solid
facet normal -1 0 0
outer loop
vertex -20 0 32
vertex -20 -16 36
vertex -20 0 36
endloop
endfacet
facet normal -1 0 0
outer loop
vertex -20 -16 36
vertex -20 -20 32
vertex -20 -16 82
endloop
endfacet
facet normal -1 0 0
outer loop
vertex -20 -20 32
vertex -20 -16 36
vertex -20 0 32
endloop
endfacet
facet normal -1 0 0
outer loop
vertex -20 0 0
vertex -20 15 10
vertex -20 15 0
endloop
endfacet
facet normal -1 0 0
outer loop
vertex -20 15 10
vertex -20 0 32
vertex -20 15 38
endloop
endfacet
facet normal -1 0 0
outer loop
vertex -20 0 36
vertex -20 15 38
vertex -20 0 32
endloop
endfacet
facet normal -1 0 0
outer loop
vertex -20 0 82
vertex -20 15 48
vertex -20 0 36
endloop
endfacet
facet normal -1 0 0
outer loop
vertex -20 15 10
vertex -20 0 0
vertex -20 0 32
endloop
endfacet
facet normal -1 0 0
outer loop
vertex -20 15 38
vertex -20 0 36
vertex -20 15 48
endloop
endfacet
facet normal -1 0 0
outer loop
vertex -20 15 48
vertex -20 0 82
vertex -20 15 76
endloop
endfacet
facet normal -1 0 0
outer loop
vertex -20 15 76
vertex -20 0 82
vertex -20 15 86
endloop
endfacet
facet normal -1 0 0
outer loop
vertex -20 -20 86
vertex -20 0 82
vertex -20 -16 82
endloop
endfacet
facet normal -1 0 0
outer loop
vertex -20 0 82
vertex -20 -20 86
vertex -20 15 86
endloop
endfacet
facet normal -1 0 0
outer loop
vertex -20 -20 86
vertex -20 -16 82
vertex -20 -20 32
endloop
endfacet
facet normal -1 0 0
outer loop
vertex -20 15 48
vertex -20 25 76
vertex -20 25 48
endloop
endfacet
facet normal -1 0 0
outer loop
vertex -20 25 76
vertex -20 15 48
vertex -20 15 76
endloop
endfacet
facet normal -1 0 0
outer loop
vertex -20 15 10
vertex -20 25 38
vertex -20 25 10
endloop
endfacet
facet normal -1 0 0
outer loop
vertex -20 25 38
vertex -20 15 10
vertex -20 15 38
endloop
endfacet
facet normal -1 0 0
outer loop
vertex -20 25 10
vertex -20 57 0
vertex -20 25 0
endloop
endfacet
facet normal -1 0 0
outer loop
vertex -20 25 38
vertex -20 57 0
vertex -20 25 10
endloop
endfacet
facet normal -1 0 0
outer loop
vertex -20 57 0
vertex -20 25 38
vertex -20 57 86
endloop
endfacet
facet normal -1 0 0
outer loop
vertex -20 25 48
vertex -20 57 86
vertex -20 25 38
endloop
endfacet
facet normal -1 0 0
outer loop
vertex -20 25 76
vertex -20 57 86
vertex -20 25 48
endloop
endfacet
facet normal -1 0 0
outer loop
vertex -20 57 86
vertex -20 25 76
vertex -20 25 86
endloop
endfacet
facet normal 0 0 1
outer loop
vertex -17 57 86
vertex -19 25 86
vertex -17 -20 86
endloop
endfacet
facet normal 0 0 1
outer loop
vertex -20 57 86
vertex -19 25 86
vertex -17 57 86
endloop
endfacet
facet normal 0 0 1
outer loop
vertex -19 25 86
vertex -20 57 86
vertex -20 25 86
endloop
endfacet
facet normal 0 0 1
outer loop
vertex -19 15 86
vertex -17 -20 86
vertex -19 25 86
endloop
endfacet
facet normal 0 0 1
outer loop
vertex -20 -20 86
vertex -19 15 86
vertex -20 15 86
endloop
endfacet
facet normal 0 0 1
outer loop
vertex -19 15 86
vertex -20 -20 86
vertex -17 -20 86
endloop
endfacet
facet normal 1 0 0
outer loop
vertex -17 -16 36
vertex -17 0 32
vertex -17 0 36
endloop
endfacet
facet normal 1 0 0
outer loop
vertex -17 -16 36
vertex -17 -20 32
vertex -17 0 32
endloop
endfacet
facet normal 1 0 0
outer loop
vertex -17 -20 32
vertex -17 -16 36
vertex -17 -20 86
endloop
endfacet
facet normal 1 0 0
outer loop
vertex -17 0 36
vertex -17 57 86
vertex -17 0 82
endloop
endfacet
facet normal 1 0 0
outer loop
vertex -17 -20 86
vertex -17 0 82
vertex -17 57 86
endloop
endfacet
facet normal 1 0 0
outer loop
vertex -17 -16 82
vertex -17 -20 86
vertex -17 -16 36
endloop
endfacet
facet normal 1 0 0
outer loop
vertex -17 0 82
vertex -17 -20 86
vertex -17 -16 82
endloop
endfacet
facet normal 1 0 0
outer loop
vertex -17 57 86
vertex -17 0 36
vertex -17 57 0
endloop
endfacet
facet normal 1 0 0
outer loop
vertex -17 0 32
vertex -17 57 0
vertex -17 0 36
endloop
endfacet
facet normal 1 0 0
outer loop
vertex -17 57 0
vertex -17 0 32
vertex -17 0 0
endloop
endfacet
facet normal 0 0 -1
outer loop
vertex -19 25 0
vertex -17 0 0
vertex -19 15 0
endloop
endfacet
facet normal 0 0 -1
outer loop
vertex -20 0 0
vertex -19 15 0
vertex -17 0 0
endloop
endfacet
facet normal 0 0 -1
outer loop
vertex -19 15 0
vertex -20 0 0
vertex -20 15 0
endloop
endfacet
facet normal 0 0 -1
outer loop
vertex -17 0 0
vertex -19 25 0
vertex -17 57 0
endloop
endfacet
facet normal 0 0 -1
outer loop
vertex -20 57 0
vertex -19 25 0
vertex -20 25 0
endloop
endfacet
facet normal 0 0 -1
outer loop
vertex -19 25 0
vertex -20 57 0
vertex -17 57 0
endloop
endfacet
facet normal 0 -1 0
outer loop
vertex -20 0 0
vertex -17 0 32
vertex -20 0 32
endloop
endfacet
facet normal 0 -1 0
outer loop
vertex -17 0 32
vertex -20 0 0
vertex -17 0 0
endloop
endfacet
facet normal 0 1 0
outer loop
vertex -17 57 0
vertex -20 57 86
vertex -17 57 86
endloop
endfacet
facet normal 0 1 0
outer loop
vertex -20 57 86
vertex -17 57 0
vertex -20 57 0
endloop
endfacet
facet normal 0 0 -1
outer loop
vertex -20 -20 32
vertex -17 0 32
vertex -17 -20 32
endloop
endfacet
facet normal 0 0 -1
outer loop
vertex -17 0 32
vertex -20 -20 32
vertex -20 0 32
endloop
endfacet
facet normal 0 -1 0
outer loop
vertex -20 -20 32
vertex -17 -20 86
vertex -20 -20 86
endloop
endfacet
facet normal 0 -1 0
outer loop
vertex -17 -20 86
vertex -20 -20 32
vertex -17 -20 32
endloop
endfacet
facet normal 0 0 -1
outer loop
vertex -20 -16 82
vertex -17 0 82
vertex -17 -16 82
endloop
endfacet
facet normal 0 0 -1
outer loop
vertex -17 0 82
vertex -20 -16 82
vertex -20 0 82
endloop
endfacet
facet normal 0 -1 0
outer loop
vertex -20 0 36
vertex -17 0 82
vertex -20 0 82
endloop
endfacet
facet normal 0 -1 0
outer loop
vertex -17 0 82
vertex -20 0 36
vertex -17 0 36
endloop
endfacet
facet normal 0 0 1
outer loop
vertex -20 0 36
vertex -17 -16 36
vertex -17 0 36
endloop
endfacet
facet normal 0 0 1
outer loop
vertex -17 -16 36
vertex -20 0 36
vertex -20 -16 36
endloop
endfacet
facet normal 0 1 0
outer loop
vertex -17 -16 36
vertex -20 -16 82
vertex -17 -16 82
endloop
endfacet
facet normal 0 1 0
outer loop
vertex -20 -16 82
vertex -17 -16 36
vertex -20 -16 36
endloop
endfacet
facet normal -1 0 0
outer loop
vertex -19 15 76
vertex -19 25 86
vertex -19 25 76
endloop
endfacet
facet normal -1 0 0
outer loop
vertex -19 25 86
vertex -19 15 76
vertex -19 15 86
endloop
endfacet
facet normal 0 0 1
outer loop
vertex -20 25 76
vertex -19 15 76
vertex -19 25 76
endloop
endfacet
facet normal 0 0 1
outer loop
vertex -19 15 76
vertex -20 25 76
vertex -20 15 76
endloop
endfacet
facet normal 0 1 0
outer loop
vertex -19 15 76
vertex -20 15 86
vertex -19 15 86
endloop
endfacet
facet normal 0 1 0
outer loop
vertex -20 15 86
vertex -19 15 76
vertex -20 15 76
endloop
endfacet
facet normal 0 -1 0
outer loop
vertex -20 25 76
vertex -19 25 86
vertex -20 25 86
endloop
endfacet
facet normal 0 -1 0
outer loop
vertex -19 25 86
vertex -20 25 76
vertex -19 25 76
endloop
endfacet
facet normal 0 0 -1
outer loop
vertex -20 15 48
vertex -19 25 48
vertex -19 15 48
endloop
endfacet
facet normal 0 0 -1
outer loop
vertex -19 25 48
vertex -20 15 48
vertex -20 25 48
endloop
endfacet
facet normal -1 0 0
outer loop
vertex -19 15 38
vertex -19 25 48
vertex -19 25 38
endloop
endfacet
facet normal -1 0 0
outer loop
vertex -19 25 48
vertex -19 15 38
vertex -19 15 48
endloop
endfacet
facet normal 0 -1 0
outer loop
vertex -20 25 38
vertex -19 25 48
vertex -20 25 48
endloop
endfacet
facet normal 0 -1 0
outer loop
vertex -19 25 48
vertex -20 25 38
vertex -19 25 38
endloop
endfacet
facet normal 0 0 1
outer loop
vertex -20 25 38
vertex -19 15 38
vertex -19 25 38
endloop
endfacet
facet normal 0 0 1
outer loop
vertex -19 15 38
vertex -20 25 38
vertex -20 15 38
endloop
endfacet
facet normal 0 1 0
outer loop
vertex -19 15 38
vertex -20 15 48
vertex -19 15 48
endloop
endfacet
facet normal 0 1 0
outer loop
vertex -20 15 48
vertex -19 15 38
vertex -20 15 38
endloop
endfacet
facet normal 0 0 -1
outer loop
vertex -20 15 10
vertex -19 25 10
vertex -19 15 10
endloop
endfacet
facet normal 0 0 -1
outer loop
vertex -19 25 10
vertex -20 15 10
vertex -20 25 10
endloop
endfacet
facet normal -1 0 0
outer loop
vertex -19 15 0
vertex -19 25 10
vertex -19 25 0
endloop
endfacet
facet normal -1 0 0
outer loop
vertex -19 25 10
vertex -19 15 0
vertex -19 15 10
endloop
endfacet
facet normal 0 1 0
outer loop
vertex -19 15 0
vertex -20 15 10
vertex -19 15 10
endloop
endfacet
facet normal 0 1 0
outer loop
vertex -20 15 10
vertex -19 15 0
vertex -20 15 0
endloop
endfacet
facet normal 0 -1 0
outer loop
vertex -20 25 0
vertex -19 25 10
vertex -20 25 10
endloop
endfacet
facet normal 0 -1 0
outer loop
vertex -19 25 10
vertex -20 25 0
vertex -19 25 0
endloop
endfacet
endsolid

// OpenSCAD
difference() {
    union() {
        translate([-20, 0, 0]) { 
            cube([3, 57, 86]);
        }
        translate([-20, -20, 32]) {
            cube([3, 20, 54]);
        }
    }
    
    // Loch für Kabel
    translate([-65, -16, 36]) {
        cube([50, 16, 46]);
    }
    
    // Einlassungen zum Kleben
    translate([-25, 15, 76]) {
        cube([6, 10, 11]);
    }
    translate([-25, 15, 38]) {
        cube([6, 10, 10]);
    }
    translate([-25, 15, -1]) {
        cube([6, 10, 11]);
    }
}
